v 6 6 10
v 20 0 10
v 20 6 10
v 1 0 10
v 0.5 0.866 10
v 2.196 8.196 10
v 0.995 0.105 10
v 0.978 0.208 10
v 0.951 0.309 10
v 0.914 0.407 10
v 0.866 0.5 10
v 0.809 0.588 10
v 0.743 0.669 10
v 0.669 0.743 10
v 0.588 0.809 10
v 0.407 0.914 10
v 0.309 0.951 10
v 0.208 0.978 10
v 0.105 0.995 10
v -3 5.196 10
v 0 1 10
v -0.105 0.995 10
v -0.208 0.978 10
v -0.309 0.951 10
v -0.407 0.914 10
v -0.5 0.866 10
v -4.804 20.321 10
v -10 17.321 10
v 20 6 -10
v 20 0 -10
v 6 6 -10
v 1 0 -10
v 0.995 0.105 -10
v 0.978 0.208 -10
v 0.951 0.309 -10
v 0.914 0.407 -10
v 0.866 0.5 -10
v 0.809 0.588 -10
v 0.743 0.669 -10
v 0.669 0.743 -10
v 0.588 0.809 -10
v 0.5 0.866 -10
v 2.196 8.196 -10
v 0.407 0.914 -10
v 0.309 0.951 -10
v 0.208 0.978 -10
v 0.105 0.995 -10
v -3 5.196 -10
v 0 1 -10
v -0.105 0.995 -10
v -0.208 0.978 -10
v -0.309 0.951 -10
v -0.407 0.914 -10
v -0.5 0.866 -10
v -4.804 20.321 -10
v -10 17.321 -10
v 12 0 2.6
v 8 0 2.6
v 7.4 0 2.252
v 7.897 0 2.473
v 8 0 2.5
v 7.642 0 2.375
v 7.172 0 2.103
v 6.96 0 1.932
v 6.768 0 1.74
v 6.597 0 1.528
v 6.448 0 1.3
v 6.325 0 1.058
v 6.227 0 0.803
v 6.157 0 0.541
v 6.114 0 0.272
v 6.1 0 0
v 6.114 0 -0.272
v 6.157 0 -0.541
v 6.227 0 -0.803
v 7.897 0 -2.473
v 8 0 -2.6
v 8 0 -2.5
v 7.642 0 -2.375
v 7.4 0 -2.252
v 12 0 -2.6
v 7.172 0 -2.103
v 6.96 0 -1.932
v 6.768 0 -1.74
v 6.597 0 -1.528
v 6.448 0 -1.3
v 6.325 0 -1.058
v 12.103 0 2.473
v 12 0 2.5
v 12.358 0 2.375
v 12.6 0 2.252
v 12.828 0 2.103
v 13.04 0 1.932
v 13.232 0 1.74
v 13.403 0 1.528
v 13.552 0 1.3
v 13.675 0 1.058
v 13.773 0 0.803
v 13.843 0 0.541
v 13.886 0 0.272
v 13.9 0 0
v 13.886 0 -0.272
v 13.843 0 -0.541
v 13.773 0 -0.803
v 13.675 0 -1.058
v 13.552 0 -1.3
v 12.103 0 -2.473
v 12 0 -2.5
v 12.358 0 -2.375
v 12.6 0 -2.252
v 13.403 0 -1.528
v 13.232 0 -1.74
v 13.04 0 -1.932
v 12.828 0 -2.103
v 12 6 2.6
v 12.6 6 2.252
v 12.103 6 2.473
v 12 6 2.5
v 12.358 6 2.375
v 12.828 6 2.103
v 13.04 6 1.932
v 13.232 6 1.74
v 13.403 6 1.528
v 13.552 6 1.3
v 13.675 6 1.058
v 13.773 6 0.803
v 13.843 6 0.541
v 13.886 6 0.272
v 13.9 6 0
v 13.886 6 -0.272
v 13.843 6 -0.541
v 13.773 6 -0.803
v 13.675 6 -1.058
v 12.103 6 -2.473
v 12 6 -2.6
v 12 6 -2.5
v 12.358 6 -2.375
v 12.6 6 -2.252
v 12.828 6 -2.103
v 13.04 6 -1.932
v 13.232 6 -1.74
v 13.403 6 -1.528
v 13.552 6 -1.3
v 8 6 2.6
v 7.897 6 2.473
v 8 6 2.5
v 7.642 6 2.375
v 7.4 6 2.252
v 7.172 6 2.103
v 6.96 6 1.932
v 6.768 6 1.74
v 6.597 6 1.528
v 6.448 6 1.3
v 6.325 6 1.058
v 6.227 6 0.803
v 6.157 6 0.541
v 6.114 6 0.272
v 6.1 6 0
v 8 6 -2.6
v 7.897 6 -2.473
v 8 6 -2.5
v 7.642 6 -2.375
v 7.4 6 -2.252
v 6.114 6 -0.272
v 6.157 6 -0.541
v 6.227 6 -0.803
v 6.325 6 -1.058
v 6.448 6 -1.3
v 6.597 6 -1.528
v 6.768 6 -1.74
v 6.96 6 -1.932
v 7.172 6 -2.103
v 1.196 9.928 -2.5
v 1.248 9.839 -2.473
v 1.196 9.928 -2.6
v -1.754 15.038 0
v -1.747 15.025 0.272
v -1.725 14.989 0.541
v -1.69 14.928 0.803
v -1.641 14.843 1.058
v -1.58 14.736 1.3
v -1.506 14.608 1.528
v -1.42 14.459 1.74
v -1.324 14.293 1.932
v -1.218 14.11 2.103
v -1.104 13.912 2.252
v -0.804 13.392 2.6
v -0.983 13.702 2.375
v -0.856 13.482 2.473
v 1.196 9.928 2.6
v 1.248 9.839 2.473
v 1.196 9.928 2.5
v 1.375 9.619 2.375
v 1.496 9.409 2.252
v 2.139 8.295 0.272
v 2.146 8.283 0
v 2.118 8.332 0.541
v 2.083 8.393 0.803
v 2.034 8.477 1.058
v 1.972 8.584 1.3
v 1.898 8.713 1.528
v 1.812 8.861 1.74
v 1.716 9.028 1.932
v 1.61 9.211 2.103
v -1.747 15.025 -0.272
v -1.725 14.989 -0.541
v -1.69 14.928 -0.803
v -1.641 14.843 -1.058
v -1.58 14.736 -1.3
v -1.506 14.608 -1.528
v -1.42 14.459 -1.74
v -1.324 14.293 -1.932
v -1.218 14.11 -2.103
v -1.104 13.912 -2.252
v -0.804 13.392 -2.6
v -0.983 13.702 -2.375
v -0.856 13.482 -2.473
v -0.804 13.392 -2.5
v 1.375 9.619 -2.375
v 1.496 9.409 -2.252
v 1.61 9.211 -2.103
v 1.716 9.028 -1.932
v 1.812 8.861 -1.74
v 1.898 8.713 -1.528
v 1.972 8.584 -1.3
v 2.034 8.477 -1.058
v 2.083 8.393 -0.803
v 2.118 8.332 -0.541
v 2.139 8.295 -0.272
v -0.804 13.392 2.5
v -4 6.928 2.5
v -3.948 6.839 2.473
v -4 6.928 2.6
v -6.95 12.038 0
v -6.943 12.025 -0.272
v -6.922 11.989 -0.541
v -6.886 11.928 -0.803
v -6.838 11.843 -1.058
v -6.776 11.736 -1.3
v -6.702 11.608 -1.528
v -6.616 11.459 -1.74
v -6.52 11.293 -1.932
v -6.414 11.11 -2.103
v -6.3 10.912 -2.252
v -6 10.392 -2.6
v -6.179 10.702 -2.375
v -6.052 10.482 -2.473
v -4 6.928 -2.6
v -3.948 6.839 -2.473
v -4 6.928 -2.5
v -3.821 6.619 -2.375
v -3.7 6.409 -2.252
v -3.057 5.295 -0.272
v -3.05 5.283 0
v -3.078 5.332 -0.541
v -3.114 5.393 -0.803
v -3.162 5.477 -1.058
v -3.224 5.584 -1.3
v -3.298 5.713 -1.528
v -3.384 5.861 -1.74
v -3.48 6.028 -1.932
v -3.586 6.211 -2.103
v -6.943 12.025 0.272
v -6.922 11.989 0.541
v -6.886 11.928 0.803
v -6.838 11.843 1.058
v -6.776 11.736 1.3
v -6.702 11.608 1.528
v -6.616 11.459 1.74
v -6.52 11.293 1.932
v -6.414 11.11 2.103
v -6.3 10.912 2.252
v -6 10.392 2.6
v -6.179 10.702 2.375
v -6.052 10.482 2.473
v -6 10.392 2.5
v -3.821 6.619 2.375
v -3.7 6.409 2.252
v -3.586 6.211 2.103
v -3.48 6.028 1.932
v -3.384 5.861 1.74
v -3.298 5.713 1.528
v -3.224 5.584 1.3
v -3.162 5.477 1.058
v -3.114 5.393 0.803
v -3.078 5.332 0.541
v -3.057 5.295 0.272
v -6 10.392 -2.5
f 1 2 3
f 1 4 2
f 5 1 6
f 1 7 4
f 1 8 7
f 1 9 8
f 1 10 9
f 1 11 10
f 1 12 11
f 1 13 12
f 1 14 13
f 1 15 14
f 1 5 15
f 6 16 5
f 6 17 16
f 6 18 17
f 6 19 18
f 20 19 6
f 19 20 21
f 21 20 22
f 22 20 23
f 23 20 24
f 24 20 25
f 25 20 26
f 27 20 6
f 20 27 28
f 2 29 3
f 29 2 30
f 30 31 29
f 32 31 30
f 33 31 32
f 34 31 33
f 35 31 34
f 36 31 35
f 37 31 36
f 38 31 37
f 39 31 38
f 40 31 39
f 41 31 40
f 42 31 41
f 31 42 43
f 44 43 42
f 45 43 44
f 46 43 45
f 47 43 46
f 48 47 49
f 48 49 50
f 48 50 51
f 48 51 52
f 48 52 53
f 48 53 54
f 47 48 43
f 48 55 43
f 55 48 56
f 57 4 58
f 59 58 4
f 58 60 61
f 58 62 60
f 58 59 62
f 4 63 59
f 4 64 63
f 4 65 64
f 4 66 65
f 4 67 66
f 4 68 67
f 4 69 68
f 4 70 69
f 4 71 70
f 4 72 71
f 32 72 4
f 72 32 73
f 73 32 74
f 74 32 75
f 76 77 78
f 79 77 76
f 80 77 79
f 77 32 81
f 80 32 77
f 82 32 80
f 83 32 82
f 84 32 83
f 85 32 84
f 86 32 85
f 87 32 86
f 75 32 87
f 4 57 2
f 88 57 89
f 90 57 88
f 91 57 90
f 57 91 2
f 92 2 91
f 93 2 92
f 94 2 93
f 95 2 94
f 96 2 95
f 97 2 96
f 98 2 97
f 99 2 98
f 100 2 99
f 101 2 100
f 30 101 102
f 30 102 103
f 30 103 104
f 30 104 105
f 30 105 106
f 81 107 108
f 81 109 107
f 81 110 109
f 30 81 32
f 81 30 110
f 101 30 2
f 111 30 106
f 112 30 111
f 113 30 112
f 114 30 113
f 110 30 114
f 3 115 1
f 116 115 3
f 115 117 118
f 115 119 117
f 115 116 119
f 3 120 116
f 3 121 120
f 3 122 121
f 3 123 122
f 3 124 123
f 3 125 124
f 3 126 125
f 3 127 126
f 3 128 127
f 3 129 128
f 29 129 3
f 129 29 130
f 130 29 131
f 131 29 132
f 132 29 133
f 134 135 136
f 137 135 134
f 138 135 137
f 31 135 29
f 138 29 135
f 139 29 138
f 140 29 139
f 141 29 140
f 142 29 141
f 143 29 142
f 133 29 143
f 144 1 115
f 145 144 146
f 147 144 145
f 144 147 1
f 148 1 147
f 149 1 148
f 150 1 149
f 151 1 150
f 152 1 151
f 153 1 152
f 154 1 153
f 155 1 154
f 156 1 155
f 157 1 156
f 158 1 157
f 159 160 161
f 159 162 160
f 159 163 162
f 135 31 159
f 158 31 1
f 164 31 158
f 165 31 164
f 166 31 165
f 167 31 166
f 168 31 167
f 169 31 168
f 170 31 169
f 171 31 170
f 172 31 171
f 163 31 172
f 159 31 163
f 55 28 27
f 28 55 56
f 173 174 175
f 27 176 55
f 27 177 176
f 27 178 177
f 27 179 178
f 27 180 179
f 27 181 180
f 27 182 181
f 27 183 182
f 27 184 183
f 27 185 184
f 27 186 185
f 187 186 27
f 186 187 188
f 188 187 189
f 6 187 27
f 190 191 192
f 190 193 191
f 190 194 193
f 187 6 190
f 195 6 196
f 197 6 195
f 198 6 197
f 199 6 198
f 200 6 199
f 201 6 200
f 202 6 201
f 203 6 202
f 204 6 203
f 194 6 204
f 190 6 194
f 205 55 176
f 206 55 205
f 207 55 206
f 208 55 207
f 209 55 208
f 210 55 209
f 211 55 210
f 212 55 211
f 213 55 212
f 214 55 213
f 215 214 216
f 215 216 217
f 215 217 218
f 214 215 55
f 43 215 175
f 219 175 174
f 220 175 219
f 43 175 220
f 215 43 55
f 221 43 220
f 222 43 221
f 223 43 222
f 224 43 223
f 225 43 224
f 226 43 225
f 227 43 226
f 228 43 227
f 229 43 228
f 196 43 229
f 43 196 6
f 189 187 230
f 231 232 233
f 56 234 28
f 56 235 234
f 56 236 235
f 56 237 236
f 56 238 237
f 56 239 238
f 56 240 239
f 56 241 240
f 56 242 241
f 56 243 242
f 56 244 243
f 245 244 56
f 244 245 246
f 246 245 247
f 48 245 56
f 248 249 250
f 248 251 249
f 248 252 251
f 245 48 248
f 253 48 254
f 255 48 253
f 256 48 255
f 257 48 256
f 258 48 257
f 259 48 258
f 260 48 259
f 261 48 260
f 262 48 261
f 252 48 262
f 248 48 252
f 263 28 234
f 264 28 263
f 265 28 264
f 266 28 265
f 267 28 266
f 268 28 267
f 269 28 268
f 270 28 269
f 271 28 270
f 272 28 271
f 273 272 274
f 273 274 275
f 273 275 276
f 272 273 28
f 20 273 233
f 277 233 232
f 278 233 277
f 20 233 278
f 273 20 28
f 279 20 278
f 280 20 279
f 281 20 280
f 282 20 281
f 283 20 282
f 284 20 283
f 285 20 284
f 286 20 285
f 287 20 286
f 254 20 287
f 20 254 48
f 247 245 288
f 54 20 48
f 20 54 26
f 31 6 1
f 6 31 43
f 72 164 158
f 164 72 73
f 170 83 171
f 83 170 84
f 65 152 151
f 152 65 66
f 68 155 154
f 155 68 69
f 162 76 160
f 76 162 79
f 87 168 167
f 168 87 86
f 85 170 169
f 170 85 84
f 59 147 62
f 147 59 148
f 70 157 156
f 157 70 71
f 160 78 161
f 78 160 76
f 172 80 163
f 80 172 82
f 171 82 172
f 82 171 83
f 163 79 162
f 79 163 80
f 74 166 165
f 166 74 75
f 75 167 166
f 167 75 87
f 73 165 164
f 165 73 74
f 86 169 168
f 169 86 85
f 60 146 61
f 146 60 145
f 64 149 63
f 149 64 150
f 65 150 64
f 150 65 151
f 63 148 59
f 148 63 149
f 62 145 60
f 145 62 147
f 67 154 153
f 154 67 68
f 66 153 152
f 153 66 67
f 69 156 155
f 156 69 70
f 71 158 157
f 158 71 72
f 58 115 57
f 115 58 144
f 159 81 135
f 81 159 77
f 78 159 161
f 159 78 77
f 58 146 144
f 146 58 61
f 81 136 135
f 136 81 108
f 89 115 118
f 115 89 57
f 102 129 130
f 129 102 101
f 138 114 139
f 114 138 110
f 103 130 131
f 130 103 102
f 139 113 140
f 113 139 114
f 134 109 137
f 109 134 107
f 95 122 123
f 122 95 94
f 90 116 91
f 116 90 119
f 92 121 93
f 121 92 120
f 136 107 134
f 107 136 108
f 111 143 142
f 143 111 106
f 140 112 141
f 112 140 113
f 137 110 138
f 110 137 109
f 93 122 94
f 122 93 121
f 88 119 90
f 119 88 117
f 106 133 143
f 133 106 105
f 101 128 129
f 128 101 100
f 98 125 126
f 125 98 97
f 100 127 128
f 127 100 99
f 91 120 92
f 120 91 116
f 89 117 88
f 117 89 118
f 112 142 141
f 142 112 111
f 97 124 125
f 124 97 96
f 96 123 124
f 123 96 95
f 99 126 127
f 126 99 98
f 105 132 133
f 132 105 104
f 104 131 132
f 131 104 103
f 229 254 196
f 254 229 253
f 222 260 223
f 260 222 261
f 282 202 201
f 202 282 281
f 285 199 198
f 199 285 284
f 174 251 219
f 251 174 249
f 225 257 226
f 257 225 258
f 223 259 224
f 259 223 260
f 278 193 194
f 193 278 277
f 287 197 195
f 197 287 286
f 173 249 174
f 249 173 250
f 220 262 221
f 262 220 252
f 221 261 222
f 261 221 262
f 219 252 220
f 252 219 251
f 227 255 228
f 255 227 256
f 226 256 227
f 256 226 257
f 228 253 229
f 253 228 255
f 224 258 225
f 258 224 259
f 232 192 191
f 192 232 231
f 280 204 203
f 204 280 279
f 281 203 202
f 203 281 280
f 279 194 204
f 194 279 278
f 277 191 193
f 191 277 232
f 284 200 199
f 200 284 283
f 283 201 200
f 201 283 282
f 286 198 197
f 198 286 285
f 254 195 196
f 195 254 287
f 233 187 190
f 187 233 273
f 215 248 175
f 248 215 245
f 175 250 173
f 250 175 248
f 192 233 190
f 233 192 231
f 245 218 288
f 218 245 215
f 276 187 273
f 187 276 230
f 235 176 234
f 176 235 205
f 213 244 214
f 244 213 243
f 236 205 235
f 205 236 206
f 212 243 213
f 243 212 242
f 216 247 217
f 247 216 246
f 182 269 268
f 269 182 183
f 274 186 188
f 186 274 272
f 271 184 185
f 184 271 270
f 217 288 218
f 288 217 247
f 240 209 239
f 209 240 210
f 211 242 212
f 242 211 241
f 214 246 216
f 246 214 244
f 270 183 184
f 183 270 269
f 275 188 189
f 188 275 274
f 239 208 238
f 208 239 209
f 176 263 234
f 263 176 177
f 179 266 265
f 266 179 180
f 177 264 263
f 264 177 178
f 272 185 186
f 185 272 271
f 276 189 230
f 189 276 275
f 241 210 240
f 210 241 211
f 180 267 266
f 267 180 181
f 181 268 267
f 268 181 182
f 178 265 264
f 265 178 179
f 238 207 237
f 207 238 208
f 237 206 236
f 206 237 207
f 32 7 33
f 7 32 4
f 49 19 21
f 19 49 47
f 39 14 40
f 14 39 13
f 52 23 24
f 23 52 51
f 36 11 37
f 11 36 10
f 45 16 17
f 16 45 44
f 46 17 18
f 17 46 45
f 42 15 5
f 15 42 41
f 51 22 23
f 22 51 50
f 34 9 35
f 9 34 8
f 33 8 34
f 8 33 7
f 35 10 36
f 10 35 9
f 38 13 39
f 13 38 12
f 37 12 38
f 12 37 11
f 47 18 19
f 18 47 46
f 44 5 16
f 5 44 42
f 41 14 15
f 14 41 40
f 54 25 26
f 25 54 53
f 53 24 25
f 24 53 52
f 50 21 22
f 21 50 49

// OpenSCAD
// corner_bracket_120.scad - 3D Printable Inner Tie Bracket with Slotted Holes (STL Export)
$fn = 60;

// --- Parameters ---
thickness = 6.0;          // Thick enough to withstand heavy torque
height = 20.0;            // Matches the vertical footprint of the wall
leg_length = 20.0;        // Reaches the 10mm inset holes perfectly
hole_offset = 10.0;       // Distance from the corner to the center of the slot

// --- User's Custom Bolt Slot Module ---
module bolt_slat(){
    translate([0,1.3,0])
    cylinder(100,2.6,2.6);
    
    translate([0,0,50])
    cube([5.2,4,100],center=true);
    
    translate([0,-1.3,0])
    cylinder(100,2.6,2.6);
}

// Wrapper to center and orient the slot horizontally through the bracket wall
module horizontal_bolt_slot() {
    // 1. translate Z by -50 to center the 100mm cylinders on the origin
    // 2. rotate [0, 90, 90] points the 100mm punch depth along the Y axis 
    //    and orientates the slot's wiggle room along the X axis.
    rotate([0, 90, 90]) translate([0, 0, -50]) bolt_slat();
}

// --- Main Bracket Geometry ---
difference() {
    union() {
        // Leg 1 (Right Side)
        translate([leg_length/2, thickness/2, 0]) 
            cube([leg_length, thickness, height], center=true);
            
        // Leg 2 (Left Side, angled at 120 degrees)
        // Shifted by -thickness/2 so it sits cleanly on the inside of the corner
        rotate([0, 0, 120]) 
            translate([leg_length/2, -thickness/2, 0]) 
            cube([leg_length, thickness, height], center=true);
            
        // Cleanly fills the small outer V-notch where the two rectangles meet
        hull() {
            translate([thickness/2, thickness/2, 0]) 
                cube([thickness, thickness, height], center=true);
            rotate([0, 0, 120]) 
                translate([thickness/2, -thickness/2, 0]) 
                cube([thickness, thickness, height], center=true);
        }
    }
    
    // Inner corner relief cut
    // Removes the absolute sharp tip so the bracket doesn't bottom out on the acrylic seam
    cylinder(r=1.0, h=height+2, center=true);

    // Slotted Bolt Hole - Leg 1
    translate([hole_offset, 0, 0]) 
        horizontal_bolt_slot();
        
    // Slotted Bolt Hole - Leg 2
    rotate([0, 0, 120]) 
        translate([hole_offset, 0, 0]) 
        horizontal_bolt_slot();
}
